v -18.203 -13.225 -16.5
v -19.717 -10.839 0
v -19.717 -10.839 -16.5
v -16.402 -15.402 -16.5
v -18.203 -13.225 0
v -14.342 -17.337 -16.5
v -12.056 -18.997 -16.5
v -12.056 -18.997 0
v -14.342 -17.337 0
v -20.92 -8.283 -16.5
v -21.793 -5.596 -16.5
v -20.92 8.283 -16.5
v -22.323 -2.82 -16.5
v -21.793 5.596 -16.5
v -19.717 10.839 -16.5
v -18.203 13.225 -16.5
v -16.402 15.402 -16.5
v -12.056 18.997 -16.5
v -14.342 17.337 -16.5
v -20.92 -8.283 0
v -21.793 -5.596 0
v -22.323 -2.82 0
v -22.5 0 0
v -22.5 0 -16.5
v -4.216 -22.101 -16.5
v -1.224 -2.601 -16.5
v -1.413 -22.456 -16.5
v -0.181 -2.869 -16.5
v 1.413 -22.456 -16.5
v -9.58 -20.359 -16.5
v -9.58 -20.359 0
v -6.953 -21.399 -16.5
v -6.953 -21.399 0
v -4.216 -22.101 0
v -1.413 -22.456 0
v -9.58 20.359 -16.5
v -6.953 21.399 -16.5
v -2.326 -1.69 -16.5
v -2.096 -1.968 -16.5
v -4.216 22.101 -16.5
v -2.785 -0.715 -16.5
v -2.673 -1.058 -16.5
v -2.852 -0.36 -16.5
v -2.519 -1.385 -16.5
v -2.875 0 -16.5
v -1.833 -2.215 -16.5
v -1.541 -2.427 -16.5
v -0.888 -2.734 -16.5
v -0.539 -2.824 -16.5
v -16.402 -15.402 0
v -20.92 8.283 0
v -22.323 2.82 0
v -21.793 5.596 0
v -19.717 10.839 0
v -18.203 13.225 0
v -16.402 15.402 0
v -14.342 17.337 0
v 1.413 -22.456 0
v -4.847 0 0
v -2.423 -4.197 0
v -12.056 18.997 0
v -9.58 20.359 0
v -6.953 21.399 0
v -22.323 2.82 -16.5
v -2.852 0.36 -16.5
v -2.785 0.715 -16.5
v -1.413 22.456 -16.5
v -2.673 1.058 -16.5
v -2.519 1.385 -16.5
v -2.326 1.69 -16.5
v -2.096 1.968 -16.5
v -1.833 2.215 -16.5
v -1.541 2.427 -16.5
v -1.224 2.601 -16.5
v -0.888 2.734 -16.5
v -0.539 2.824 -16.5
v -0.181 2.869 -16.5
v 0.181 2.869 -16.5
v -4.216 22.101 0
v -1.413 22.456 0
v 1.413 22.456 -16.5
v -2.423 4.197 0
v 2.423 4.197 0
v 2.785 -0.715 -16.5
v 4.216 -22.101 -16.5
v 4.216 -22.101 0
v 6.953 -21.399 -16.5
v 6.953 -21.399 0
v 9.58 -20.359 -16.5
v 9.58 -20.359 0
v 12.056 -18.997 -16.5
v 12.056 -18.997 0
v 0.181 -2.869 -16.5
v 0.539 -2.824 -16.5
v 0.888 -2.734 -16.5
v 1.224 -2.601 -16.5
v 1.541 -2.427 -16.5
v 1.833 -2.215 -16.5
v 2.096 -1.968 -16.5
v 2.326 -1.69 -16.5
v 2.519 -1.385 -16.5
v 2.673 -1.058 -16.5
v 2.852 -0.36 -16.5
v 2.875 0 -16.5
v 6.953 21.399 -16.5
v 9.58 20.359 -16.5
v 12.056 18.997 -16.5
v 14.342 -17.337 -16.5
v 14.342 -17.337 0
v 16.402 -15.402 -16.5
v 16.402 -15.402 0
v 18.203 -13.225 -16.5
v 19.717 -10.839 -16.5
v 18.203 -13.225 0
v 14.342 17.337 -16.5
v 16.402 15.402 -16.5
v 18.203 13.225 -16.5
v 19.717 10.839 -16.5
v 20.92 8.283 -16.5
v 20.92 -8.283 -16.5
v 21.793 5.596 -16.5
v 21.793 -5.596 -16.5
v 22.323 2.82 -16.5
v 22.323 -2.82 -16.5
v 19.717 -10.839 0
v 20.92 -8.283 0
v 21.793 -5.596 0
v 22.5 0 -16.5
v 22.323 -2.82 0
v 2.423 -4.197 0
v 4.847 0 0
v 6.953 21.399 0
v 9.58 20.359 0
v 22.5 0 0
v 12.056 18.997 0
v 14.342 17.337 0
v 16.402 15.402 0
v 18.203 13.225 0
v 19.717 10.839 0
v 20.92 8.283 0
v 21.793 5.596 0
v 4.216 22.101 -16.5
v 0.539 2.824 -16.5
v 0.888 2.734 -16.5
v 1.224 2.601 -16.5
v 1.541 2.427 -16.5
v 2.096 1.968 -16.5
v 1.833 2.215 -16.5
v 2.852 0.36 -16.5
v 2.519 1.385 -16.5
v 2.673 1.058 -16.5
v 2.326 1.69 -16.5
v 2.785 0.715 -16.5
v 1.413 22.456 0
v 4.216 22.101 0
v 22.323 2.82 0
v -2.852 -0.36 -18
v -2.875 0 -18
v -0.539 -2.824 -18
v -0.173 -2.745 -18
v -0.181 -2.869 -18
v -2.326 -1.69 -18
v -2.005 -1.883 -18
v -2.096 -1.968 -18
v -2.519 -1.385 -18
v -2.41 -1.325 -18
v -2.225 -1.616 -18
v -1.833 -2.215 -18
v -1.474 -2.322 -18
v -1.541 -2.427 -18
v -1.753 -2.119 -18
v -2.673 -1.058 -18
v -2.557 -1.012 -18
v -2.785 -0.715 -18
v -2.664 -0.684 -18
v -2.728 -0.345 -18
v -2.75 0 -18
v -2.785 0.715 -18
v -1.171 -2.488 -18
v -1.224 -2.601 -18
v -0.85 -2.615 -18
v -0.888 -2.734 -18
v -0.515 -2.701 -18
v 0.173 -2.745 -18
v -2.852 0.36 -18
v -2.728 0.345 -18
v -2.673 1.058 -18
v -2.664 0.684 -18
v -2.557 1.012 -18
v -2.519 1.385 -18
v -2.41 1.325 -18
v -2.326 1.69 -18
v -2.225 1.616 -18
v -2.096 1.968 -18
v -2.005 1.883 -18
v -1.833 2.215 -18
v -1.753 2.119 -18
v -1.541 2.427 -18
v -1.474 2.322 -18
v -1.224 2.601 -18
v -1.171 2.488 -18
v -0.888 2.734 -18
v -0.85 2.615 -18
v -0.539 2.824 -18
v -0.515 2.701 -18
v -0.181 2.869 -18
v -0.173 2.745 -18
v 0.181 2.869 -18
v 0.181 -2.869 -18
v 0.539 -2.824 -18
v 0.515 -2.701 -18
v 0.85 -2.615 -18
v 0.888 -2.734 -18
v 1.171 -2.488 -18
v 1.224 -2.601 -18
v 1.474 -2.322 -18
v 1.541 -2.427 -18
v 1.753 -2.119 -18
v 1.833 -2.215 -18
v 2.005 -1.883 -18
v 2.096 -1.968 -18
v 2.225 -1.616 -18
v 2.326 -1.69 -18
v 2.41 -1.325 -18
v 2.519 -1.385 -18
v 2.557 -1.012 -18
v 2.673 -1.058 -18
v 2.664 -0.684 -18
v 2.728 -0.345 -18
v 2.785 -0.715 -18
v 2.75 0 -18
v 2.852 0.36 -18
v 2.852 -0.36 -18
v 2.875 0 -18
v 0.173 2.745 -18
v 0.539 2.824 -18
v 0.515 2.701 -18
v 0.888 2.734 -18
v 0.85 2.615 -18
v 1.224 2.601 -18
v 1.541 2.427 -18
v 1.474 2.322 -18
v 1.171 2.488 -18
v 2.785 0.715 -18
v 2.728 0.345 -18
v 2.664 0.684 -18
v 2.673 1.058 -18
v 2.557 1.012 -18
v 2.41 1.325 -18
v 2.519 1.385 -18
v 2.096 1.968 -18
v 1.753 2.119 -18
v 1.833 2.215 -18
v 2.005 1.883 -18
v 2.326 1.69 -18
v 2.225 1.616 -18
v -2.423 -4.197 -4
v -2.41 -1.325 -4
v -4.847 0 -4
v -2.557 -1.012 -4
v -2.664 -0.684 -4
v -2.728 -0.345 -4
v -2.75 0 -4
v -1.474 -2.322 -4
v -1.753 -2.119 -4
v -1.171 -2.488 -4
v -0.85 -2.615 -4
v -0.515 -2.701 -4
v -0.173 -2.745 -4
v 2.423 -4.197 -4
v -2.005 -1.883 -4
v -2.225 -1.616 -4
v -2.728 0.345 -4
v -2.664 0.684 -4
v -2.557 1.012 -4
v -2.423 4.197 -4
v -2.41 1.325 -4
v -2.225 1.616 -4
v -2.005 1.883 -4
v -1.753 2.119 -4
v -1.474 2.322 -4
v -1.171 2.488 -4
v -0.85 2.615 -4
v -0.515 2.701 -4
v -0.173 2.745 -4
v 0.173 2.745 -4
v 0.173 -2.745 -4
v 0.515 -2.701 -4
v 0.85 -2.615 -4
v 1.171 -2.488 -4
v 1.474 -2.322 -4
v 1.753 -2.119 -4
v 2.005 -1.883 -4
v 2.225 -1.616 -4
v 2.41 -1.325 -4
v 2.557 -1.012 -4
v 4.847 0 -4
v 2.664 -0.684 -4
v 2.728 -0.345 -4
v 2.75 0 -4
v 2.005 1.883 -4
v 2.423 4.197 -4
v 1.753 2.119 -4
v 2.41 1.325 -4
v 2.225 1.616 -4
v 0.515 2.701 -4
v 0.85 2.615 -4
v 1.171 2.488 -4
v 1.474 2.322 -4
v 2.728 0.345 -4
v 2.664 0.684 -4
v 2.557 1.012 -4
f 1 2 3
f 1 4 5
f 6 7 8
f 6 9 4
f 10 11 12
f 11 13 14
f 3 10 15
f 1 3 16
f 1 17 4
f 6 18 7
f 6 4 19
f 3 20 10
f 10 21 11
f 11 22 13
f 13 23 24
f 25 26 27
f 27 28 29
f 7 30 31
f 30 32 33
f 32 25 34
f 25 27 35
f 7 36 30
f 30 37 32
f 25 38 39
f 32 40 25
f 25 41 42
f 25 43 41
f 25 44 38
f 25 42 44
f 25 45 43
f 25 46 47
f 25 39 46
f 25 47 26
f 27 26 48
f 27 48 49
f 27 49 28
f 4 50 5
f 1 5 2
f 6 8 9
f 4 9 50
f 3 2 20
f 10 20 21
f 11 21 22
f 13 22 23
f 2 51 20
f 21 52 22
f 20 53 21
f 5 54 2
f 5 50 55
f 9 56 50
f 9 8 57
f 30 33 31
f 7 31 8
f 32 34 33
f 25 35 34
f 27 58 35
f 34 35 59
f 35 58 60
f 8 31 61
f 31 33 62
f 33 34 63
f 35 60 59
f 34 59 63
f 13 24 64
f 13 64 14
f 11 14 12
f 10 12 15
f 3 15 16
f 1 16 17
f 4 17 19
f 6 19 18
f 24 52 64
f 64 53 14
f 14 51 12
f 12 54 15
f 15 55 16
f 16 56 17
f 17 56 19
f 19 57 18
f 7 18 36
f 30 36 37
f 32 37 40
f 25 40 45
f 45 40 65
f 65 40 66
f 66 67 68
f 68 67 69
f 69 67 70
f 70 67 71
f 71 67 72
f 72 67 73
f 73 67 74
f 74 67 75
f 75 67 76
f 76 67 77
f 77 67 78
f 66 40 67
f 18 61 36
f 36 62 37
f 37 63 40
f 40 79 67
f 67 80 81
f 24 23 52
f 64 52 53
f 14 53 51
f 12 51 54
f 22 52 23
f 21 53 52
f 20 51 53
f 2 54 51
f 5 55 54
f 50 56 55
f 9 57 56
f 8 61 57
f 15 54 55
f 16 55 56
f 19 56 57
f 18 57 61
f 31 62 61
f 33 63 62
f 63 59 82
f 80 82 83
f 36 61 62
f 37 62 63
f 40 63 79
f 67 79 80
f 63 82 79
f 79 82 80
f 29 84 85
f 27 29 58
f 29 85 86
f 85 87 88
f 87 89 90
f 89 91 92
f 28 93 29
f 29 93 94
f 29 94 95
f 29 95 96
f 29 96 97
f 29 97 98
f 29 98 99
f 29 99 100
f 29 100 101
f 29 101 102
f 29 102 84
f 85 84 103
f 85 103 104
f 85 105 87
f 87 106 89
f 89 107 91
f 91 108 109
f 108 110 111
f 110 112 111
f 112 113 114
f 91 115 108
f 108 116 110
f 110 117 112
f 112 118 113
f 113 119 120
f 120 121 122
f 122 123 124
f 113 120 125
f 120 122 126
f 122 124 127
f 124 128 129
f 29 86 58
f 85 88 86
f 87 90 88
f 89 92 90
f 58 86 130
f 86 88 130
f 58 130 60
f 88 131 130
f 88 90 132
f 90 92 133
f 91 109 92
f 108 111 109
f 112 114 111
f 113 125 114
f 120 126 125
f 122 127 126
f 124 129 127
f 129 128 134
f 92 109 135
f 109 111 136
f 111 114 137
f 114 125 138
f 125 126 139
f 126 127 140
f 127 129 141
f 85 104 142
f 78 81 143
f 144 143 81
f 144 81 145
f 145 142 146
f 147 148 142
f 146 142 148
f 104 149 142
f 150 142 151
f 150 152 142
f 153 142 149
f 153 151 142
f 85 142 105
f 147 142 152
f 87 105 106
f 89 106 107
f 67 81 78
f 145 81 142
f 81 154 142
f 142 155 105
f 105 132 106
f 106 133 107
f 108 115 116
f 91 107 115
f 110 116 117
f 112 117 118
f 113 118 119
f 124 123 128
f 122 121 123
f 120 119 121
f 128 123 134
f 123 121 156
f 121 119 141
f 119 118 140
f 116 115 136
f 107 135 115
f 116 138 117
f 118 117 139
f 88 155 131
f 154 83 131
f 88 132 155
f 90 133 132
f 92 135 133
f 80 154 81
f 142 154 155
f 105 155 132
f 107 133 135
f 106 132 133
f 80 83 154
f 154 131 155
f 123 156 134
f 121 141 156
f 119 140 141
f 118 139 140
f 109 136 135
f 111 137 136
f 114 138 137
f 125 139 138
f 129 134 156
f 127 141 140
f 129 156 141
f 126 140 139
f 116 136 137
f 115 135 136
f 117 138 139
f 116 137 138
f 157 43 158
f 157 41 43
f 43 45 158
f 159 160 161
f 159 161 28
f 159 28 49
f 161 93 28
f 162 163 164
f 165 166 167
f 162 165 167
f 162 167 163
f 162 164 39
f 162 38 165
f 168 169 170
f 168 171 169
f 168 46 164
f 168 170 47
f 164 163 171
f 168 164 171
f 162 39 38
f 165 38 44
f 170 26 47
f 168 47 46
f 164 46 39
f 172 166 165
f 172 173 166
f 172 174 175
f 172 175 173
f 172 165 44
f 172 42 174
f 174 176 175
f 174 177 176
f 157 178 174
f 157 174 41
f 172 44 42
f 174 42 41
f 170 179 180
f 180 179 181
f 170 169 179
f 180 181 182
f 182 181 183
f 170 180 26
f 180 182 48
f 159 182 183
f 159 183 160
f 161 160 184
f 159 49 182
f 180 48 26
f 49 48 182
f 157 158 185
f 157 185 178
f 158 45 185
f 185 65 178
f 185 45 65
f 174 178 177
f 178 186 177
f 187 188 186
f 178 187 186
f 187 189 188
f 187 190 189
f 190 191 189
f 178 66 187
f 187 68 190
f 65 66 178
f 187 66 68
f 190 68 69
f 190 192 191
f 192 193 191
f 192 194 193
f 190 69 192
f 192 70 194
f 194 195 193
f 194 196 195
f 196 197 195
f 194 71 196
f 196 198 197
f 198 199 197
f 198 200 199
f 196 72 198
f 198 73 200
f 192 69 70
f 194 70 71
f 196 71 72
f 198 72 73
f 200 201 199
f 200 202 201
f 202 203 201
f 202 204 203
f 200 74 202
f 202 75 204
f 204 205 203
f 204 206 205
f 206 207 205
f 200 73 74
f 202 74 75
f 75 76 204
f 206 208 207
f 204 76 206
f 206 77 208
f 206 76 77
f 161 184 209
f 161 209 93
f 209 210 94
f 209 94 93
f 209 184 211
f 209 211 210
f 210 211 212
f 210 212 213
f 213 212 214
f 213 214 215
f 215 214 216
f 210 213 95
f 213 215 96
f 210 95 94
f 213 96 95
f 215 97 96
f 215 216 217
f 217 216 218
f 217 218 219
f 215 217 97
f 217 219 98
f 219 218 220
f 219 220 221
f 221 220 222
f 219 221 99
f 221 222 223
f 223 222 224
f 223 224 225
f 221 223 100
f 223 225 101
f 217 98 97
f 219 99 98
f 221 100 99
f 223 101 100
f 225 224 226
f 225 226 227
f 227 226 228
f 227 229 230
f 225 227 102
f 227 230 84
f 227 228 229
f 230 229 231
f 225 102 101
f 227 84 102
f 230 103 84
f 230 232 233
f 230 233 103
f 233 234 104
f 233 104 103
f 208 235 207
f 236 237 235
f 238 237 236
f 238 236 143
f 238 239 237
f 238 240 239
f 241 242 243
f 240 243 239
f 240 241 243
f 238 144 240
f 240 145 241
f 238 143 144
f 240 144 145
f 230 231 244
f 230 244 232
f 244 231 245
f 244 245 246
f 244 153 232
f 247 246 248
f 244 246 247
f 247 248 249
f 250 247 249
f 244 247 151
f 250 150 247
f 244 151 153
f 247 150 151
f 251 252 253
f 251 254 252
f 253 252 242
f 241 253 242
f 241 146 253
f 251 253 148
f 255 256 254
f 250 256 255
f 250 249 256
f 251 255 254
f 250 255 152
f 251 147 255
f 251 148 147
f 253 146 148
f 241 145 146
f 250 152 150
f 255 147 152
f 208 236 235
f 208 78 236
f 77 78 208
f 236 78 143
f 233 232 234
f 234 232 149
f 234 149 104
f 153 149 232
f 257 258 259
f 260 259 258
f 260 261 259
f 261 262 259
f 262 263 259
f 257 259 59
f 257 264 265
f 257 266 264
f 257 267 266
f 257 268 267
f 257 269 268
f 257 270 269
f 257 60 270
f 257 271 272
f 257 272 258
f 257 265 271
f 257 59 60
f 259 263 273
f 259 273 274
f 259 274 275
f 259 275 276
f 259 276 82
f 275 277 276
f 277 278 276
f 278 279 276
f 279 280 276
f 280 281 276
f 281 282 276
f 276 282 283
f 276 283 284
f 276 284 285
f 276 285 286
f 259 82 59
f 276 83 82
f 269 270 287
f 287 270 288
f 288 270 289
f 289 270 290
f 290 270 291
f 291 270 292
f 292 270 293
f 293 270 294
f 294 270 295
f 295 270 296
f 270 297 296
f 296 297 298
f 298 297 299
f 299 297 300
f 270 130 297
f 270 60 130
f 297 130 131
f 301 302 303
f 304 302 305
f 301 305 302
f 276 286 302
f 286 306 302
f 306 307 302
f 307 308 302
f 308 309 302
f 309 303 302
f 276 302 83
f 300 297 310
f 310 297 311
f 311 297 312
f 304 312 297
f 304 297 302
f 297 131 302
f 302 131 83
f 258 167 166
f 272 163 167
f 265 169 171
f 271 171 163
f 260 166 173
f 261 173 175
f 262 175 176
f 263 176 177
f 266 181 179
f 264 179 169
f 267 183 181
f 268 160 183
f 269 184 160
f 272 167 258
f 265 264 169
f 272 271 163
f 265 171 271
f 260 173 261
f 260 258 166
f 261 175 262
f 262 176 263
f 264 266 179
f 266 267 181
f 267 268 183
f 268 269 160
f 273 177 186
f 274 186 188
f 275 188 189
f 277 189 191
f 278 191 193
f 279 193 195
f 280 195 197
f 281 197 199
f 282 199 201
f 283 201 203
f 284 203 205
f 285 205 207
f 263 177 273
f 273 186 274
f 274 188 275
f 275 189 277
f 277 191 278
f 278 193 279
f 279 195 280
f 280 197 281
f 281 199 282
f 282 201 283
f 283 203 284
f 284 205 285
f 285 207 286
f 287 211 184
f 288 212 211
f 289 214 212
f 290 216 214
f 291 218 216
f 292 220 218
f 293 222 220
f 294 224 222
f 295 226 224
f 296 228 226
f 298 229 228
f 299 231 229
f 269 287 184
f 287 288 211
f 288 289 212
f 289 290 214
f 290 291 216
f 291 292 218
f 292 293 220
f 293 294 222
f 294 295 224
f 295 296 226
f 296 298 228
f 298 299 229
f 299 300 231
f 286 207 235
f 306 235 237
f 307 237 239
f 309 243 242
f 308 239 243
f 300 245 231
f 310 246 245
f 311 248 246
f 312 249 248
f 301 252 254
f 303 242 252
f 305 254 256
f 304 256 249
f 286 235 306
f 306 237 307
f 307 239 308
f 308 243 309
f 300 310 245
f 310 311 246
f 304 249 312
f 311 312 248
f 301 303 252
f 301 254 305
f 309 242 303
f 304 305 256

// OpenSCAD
$fn = 50;

difference() {
	union() {
		translate(v = [0, 0, -16.5]) {
			cylinder(h = 16.5, r = 22.5);
		}
		#translate(v = [0, 0, -18.0]) {
			cylinder(h = 18, r = 2.875);
		}
	}
	union() {
		translate(v = [0, 0, 0]) {
			rotate(a = [0, 0, 0]) {
				difference() {
					union() {
						translate(v = [0, 0, -4]) {
							linear_extrude(height = 4) {
								polygon(points = [[4.8468, 0.0], [2.4234000000000004, 4.197451927062417], [-2.423399999999999, 4.197451927062417], [-4.8468, 5.935618106107392e-16], [-2.423400000000002, -4.197451927062416], [2.423399999999997, -4.197451927062419]]);
							}
						}
					}
					union();
				}
			}
		}
		#translate(v = [0, 0, -100.0]) {
			cylinder(h = 200, r = 2.75);
		}
	}
}
